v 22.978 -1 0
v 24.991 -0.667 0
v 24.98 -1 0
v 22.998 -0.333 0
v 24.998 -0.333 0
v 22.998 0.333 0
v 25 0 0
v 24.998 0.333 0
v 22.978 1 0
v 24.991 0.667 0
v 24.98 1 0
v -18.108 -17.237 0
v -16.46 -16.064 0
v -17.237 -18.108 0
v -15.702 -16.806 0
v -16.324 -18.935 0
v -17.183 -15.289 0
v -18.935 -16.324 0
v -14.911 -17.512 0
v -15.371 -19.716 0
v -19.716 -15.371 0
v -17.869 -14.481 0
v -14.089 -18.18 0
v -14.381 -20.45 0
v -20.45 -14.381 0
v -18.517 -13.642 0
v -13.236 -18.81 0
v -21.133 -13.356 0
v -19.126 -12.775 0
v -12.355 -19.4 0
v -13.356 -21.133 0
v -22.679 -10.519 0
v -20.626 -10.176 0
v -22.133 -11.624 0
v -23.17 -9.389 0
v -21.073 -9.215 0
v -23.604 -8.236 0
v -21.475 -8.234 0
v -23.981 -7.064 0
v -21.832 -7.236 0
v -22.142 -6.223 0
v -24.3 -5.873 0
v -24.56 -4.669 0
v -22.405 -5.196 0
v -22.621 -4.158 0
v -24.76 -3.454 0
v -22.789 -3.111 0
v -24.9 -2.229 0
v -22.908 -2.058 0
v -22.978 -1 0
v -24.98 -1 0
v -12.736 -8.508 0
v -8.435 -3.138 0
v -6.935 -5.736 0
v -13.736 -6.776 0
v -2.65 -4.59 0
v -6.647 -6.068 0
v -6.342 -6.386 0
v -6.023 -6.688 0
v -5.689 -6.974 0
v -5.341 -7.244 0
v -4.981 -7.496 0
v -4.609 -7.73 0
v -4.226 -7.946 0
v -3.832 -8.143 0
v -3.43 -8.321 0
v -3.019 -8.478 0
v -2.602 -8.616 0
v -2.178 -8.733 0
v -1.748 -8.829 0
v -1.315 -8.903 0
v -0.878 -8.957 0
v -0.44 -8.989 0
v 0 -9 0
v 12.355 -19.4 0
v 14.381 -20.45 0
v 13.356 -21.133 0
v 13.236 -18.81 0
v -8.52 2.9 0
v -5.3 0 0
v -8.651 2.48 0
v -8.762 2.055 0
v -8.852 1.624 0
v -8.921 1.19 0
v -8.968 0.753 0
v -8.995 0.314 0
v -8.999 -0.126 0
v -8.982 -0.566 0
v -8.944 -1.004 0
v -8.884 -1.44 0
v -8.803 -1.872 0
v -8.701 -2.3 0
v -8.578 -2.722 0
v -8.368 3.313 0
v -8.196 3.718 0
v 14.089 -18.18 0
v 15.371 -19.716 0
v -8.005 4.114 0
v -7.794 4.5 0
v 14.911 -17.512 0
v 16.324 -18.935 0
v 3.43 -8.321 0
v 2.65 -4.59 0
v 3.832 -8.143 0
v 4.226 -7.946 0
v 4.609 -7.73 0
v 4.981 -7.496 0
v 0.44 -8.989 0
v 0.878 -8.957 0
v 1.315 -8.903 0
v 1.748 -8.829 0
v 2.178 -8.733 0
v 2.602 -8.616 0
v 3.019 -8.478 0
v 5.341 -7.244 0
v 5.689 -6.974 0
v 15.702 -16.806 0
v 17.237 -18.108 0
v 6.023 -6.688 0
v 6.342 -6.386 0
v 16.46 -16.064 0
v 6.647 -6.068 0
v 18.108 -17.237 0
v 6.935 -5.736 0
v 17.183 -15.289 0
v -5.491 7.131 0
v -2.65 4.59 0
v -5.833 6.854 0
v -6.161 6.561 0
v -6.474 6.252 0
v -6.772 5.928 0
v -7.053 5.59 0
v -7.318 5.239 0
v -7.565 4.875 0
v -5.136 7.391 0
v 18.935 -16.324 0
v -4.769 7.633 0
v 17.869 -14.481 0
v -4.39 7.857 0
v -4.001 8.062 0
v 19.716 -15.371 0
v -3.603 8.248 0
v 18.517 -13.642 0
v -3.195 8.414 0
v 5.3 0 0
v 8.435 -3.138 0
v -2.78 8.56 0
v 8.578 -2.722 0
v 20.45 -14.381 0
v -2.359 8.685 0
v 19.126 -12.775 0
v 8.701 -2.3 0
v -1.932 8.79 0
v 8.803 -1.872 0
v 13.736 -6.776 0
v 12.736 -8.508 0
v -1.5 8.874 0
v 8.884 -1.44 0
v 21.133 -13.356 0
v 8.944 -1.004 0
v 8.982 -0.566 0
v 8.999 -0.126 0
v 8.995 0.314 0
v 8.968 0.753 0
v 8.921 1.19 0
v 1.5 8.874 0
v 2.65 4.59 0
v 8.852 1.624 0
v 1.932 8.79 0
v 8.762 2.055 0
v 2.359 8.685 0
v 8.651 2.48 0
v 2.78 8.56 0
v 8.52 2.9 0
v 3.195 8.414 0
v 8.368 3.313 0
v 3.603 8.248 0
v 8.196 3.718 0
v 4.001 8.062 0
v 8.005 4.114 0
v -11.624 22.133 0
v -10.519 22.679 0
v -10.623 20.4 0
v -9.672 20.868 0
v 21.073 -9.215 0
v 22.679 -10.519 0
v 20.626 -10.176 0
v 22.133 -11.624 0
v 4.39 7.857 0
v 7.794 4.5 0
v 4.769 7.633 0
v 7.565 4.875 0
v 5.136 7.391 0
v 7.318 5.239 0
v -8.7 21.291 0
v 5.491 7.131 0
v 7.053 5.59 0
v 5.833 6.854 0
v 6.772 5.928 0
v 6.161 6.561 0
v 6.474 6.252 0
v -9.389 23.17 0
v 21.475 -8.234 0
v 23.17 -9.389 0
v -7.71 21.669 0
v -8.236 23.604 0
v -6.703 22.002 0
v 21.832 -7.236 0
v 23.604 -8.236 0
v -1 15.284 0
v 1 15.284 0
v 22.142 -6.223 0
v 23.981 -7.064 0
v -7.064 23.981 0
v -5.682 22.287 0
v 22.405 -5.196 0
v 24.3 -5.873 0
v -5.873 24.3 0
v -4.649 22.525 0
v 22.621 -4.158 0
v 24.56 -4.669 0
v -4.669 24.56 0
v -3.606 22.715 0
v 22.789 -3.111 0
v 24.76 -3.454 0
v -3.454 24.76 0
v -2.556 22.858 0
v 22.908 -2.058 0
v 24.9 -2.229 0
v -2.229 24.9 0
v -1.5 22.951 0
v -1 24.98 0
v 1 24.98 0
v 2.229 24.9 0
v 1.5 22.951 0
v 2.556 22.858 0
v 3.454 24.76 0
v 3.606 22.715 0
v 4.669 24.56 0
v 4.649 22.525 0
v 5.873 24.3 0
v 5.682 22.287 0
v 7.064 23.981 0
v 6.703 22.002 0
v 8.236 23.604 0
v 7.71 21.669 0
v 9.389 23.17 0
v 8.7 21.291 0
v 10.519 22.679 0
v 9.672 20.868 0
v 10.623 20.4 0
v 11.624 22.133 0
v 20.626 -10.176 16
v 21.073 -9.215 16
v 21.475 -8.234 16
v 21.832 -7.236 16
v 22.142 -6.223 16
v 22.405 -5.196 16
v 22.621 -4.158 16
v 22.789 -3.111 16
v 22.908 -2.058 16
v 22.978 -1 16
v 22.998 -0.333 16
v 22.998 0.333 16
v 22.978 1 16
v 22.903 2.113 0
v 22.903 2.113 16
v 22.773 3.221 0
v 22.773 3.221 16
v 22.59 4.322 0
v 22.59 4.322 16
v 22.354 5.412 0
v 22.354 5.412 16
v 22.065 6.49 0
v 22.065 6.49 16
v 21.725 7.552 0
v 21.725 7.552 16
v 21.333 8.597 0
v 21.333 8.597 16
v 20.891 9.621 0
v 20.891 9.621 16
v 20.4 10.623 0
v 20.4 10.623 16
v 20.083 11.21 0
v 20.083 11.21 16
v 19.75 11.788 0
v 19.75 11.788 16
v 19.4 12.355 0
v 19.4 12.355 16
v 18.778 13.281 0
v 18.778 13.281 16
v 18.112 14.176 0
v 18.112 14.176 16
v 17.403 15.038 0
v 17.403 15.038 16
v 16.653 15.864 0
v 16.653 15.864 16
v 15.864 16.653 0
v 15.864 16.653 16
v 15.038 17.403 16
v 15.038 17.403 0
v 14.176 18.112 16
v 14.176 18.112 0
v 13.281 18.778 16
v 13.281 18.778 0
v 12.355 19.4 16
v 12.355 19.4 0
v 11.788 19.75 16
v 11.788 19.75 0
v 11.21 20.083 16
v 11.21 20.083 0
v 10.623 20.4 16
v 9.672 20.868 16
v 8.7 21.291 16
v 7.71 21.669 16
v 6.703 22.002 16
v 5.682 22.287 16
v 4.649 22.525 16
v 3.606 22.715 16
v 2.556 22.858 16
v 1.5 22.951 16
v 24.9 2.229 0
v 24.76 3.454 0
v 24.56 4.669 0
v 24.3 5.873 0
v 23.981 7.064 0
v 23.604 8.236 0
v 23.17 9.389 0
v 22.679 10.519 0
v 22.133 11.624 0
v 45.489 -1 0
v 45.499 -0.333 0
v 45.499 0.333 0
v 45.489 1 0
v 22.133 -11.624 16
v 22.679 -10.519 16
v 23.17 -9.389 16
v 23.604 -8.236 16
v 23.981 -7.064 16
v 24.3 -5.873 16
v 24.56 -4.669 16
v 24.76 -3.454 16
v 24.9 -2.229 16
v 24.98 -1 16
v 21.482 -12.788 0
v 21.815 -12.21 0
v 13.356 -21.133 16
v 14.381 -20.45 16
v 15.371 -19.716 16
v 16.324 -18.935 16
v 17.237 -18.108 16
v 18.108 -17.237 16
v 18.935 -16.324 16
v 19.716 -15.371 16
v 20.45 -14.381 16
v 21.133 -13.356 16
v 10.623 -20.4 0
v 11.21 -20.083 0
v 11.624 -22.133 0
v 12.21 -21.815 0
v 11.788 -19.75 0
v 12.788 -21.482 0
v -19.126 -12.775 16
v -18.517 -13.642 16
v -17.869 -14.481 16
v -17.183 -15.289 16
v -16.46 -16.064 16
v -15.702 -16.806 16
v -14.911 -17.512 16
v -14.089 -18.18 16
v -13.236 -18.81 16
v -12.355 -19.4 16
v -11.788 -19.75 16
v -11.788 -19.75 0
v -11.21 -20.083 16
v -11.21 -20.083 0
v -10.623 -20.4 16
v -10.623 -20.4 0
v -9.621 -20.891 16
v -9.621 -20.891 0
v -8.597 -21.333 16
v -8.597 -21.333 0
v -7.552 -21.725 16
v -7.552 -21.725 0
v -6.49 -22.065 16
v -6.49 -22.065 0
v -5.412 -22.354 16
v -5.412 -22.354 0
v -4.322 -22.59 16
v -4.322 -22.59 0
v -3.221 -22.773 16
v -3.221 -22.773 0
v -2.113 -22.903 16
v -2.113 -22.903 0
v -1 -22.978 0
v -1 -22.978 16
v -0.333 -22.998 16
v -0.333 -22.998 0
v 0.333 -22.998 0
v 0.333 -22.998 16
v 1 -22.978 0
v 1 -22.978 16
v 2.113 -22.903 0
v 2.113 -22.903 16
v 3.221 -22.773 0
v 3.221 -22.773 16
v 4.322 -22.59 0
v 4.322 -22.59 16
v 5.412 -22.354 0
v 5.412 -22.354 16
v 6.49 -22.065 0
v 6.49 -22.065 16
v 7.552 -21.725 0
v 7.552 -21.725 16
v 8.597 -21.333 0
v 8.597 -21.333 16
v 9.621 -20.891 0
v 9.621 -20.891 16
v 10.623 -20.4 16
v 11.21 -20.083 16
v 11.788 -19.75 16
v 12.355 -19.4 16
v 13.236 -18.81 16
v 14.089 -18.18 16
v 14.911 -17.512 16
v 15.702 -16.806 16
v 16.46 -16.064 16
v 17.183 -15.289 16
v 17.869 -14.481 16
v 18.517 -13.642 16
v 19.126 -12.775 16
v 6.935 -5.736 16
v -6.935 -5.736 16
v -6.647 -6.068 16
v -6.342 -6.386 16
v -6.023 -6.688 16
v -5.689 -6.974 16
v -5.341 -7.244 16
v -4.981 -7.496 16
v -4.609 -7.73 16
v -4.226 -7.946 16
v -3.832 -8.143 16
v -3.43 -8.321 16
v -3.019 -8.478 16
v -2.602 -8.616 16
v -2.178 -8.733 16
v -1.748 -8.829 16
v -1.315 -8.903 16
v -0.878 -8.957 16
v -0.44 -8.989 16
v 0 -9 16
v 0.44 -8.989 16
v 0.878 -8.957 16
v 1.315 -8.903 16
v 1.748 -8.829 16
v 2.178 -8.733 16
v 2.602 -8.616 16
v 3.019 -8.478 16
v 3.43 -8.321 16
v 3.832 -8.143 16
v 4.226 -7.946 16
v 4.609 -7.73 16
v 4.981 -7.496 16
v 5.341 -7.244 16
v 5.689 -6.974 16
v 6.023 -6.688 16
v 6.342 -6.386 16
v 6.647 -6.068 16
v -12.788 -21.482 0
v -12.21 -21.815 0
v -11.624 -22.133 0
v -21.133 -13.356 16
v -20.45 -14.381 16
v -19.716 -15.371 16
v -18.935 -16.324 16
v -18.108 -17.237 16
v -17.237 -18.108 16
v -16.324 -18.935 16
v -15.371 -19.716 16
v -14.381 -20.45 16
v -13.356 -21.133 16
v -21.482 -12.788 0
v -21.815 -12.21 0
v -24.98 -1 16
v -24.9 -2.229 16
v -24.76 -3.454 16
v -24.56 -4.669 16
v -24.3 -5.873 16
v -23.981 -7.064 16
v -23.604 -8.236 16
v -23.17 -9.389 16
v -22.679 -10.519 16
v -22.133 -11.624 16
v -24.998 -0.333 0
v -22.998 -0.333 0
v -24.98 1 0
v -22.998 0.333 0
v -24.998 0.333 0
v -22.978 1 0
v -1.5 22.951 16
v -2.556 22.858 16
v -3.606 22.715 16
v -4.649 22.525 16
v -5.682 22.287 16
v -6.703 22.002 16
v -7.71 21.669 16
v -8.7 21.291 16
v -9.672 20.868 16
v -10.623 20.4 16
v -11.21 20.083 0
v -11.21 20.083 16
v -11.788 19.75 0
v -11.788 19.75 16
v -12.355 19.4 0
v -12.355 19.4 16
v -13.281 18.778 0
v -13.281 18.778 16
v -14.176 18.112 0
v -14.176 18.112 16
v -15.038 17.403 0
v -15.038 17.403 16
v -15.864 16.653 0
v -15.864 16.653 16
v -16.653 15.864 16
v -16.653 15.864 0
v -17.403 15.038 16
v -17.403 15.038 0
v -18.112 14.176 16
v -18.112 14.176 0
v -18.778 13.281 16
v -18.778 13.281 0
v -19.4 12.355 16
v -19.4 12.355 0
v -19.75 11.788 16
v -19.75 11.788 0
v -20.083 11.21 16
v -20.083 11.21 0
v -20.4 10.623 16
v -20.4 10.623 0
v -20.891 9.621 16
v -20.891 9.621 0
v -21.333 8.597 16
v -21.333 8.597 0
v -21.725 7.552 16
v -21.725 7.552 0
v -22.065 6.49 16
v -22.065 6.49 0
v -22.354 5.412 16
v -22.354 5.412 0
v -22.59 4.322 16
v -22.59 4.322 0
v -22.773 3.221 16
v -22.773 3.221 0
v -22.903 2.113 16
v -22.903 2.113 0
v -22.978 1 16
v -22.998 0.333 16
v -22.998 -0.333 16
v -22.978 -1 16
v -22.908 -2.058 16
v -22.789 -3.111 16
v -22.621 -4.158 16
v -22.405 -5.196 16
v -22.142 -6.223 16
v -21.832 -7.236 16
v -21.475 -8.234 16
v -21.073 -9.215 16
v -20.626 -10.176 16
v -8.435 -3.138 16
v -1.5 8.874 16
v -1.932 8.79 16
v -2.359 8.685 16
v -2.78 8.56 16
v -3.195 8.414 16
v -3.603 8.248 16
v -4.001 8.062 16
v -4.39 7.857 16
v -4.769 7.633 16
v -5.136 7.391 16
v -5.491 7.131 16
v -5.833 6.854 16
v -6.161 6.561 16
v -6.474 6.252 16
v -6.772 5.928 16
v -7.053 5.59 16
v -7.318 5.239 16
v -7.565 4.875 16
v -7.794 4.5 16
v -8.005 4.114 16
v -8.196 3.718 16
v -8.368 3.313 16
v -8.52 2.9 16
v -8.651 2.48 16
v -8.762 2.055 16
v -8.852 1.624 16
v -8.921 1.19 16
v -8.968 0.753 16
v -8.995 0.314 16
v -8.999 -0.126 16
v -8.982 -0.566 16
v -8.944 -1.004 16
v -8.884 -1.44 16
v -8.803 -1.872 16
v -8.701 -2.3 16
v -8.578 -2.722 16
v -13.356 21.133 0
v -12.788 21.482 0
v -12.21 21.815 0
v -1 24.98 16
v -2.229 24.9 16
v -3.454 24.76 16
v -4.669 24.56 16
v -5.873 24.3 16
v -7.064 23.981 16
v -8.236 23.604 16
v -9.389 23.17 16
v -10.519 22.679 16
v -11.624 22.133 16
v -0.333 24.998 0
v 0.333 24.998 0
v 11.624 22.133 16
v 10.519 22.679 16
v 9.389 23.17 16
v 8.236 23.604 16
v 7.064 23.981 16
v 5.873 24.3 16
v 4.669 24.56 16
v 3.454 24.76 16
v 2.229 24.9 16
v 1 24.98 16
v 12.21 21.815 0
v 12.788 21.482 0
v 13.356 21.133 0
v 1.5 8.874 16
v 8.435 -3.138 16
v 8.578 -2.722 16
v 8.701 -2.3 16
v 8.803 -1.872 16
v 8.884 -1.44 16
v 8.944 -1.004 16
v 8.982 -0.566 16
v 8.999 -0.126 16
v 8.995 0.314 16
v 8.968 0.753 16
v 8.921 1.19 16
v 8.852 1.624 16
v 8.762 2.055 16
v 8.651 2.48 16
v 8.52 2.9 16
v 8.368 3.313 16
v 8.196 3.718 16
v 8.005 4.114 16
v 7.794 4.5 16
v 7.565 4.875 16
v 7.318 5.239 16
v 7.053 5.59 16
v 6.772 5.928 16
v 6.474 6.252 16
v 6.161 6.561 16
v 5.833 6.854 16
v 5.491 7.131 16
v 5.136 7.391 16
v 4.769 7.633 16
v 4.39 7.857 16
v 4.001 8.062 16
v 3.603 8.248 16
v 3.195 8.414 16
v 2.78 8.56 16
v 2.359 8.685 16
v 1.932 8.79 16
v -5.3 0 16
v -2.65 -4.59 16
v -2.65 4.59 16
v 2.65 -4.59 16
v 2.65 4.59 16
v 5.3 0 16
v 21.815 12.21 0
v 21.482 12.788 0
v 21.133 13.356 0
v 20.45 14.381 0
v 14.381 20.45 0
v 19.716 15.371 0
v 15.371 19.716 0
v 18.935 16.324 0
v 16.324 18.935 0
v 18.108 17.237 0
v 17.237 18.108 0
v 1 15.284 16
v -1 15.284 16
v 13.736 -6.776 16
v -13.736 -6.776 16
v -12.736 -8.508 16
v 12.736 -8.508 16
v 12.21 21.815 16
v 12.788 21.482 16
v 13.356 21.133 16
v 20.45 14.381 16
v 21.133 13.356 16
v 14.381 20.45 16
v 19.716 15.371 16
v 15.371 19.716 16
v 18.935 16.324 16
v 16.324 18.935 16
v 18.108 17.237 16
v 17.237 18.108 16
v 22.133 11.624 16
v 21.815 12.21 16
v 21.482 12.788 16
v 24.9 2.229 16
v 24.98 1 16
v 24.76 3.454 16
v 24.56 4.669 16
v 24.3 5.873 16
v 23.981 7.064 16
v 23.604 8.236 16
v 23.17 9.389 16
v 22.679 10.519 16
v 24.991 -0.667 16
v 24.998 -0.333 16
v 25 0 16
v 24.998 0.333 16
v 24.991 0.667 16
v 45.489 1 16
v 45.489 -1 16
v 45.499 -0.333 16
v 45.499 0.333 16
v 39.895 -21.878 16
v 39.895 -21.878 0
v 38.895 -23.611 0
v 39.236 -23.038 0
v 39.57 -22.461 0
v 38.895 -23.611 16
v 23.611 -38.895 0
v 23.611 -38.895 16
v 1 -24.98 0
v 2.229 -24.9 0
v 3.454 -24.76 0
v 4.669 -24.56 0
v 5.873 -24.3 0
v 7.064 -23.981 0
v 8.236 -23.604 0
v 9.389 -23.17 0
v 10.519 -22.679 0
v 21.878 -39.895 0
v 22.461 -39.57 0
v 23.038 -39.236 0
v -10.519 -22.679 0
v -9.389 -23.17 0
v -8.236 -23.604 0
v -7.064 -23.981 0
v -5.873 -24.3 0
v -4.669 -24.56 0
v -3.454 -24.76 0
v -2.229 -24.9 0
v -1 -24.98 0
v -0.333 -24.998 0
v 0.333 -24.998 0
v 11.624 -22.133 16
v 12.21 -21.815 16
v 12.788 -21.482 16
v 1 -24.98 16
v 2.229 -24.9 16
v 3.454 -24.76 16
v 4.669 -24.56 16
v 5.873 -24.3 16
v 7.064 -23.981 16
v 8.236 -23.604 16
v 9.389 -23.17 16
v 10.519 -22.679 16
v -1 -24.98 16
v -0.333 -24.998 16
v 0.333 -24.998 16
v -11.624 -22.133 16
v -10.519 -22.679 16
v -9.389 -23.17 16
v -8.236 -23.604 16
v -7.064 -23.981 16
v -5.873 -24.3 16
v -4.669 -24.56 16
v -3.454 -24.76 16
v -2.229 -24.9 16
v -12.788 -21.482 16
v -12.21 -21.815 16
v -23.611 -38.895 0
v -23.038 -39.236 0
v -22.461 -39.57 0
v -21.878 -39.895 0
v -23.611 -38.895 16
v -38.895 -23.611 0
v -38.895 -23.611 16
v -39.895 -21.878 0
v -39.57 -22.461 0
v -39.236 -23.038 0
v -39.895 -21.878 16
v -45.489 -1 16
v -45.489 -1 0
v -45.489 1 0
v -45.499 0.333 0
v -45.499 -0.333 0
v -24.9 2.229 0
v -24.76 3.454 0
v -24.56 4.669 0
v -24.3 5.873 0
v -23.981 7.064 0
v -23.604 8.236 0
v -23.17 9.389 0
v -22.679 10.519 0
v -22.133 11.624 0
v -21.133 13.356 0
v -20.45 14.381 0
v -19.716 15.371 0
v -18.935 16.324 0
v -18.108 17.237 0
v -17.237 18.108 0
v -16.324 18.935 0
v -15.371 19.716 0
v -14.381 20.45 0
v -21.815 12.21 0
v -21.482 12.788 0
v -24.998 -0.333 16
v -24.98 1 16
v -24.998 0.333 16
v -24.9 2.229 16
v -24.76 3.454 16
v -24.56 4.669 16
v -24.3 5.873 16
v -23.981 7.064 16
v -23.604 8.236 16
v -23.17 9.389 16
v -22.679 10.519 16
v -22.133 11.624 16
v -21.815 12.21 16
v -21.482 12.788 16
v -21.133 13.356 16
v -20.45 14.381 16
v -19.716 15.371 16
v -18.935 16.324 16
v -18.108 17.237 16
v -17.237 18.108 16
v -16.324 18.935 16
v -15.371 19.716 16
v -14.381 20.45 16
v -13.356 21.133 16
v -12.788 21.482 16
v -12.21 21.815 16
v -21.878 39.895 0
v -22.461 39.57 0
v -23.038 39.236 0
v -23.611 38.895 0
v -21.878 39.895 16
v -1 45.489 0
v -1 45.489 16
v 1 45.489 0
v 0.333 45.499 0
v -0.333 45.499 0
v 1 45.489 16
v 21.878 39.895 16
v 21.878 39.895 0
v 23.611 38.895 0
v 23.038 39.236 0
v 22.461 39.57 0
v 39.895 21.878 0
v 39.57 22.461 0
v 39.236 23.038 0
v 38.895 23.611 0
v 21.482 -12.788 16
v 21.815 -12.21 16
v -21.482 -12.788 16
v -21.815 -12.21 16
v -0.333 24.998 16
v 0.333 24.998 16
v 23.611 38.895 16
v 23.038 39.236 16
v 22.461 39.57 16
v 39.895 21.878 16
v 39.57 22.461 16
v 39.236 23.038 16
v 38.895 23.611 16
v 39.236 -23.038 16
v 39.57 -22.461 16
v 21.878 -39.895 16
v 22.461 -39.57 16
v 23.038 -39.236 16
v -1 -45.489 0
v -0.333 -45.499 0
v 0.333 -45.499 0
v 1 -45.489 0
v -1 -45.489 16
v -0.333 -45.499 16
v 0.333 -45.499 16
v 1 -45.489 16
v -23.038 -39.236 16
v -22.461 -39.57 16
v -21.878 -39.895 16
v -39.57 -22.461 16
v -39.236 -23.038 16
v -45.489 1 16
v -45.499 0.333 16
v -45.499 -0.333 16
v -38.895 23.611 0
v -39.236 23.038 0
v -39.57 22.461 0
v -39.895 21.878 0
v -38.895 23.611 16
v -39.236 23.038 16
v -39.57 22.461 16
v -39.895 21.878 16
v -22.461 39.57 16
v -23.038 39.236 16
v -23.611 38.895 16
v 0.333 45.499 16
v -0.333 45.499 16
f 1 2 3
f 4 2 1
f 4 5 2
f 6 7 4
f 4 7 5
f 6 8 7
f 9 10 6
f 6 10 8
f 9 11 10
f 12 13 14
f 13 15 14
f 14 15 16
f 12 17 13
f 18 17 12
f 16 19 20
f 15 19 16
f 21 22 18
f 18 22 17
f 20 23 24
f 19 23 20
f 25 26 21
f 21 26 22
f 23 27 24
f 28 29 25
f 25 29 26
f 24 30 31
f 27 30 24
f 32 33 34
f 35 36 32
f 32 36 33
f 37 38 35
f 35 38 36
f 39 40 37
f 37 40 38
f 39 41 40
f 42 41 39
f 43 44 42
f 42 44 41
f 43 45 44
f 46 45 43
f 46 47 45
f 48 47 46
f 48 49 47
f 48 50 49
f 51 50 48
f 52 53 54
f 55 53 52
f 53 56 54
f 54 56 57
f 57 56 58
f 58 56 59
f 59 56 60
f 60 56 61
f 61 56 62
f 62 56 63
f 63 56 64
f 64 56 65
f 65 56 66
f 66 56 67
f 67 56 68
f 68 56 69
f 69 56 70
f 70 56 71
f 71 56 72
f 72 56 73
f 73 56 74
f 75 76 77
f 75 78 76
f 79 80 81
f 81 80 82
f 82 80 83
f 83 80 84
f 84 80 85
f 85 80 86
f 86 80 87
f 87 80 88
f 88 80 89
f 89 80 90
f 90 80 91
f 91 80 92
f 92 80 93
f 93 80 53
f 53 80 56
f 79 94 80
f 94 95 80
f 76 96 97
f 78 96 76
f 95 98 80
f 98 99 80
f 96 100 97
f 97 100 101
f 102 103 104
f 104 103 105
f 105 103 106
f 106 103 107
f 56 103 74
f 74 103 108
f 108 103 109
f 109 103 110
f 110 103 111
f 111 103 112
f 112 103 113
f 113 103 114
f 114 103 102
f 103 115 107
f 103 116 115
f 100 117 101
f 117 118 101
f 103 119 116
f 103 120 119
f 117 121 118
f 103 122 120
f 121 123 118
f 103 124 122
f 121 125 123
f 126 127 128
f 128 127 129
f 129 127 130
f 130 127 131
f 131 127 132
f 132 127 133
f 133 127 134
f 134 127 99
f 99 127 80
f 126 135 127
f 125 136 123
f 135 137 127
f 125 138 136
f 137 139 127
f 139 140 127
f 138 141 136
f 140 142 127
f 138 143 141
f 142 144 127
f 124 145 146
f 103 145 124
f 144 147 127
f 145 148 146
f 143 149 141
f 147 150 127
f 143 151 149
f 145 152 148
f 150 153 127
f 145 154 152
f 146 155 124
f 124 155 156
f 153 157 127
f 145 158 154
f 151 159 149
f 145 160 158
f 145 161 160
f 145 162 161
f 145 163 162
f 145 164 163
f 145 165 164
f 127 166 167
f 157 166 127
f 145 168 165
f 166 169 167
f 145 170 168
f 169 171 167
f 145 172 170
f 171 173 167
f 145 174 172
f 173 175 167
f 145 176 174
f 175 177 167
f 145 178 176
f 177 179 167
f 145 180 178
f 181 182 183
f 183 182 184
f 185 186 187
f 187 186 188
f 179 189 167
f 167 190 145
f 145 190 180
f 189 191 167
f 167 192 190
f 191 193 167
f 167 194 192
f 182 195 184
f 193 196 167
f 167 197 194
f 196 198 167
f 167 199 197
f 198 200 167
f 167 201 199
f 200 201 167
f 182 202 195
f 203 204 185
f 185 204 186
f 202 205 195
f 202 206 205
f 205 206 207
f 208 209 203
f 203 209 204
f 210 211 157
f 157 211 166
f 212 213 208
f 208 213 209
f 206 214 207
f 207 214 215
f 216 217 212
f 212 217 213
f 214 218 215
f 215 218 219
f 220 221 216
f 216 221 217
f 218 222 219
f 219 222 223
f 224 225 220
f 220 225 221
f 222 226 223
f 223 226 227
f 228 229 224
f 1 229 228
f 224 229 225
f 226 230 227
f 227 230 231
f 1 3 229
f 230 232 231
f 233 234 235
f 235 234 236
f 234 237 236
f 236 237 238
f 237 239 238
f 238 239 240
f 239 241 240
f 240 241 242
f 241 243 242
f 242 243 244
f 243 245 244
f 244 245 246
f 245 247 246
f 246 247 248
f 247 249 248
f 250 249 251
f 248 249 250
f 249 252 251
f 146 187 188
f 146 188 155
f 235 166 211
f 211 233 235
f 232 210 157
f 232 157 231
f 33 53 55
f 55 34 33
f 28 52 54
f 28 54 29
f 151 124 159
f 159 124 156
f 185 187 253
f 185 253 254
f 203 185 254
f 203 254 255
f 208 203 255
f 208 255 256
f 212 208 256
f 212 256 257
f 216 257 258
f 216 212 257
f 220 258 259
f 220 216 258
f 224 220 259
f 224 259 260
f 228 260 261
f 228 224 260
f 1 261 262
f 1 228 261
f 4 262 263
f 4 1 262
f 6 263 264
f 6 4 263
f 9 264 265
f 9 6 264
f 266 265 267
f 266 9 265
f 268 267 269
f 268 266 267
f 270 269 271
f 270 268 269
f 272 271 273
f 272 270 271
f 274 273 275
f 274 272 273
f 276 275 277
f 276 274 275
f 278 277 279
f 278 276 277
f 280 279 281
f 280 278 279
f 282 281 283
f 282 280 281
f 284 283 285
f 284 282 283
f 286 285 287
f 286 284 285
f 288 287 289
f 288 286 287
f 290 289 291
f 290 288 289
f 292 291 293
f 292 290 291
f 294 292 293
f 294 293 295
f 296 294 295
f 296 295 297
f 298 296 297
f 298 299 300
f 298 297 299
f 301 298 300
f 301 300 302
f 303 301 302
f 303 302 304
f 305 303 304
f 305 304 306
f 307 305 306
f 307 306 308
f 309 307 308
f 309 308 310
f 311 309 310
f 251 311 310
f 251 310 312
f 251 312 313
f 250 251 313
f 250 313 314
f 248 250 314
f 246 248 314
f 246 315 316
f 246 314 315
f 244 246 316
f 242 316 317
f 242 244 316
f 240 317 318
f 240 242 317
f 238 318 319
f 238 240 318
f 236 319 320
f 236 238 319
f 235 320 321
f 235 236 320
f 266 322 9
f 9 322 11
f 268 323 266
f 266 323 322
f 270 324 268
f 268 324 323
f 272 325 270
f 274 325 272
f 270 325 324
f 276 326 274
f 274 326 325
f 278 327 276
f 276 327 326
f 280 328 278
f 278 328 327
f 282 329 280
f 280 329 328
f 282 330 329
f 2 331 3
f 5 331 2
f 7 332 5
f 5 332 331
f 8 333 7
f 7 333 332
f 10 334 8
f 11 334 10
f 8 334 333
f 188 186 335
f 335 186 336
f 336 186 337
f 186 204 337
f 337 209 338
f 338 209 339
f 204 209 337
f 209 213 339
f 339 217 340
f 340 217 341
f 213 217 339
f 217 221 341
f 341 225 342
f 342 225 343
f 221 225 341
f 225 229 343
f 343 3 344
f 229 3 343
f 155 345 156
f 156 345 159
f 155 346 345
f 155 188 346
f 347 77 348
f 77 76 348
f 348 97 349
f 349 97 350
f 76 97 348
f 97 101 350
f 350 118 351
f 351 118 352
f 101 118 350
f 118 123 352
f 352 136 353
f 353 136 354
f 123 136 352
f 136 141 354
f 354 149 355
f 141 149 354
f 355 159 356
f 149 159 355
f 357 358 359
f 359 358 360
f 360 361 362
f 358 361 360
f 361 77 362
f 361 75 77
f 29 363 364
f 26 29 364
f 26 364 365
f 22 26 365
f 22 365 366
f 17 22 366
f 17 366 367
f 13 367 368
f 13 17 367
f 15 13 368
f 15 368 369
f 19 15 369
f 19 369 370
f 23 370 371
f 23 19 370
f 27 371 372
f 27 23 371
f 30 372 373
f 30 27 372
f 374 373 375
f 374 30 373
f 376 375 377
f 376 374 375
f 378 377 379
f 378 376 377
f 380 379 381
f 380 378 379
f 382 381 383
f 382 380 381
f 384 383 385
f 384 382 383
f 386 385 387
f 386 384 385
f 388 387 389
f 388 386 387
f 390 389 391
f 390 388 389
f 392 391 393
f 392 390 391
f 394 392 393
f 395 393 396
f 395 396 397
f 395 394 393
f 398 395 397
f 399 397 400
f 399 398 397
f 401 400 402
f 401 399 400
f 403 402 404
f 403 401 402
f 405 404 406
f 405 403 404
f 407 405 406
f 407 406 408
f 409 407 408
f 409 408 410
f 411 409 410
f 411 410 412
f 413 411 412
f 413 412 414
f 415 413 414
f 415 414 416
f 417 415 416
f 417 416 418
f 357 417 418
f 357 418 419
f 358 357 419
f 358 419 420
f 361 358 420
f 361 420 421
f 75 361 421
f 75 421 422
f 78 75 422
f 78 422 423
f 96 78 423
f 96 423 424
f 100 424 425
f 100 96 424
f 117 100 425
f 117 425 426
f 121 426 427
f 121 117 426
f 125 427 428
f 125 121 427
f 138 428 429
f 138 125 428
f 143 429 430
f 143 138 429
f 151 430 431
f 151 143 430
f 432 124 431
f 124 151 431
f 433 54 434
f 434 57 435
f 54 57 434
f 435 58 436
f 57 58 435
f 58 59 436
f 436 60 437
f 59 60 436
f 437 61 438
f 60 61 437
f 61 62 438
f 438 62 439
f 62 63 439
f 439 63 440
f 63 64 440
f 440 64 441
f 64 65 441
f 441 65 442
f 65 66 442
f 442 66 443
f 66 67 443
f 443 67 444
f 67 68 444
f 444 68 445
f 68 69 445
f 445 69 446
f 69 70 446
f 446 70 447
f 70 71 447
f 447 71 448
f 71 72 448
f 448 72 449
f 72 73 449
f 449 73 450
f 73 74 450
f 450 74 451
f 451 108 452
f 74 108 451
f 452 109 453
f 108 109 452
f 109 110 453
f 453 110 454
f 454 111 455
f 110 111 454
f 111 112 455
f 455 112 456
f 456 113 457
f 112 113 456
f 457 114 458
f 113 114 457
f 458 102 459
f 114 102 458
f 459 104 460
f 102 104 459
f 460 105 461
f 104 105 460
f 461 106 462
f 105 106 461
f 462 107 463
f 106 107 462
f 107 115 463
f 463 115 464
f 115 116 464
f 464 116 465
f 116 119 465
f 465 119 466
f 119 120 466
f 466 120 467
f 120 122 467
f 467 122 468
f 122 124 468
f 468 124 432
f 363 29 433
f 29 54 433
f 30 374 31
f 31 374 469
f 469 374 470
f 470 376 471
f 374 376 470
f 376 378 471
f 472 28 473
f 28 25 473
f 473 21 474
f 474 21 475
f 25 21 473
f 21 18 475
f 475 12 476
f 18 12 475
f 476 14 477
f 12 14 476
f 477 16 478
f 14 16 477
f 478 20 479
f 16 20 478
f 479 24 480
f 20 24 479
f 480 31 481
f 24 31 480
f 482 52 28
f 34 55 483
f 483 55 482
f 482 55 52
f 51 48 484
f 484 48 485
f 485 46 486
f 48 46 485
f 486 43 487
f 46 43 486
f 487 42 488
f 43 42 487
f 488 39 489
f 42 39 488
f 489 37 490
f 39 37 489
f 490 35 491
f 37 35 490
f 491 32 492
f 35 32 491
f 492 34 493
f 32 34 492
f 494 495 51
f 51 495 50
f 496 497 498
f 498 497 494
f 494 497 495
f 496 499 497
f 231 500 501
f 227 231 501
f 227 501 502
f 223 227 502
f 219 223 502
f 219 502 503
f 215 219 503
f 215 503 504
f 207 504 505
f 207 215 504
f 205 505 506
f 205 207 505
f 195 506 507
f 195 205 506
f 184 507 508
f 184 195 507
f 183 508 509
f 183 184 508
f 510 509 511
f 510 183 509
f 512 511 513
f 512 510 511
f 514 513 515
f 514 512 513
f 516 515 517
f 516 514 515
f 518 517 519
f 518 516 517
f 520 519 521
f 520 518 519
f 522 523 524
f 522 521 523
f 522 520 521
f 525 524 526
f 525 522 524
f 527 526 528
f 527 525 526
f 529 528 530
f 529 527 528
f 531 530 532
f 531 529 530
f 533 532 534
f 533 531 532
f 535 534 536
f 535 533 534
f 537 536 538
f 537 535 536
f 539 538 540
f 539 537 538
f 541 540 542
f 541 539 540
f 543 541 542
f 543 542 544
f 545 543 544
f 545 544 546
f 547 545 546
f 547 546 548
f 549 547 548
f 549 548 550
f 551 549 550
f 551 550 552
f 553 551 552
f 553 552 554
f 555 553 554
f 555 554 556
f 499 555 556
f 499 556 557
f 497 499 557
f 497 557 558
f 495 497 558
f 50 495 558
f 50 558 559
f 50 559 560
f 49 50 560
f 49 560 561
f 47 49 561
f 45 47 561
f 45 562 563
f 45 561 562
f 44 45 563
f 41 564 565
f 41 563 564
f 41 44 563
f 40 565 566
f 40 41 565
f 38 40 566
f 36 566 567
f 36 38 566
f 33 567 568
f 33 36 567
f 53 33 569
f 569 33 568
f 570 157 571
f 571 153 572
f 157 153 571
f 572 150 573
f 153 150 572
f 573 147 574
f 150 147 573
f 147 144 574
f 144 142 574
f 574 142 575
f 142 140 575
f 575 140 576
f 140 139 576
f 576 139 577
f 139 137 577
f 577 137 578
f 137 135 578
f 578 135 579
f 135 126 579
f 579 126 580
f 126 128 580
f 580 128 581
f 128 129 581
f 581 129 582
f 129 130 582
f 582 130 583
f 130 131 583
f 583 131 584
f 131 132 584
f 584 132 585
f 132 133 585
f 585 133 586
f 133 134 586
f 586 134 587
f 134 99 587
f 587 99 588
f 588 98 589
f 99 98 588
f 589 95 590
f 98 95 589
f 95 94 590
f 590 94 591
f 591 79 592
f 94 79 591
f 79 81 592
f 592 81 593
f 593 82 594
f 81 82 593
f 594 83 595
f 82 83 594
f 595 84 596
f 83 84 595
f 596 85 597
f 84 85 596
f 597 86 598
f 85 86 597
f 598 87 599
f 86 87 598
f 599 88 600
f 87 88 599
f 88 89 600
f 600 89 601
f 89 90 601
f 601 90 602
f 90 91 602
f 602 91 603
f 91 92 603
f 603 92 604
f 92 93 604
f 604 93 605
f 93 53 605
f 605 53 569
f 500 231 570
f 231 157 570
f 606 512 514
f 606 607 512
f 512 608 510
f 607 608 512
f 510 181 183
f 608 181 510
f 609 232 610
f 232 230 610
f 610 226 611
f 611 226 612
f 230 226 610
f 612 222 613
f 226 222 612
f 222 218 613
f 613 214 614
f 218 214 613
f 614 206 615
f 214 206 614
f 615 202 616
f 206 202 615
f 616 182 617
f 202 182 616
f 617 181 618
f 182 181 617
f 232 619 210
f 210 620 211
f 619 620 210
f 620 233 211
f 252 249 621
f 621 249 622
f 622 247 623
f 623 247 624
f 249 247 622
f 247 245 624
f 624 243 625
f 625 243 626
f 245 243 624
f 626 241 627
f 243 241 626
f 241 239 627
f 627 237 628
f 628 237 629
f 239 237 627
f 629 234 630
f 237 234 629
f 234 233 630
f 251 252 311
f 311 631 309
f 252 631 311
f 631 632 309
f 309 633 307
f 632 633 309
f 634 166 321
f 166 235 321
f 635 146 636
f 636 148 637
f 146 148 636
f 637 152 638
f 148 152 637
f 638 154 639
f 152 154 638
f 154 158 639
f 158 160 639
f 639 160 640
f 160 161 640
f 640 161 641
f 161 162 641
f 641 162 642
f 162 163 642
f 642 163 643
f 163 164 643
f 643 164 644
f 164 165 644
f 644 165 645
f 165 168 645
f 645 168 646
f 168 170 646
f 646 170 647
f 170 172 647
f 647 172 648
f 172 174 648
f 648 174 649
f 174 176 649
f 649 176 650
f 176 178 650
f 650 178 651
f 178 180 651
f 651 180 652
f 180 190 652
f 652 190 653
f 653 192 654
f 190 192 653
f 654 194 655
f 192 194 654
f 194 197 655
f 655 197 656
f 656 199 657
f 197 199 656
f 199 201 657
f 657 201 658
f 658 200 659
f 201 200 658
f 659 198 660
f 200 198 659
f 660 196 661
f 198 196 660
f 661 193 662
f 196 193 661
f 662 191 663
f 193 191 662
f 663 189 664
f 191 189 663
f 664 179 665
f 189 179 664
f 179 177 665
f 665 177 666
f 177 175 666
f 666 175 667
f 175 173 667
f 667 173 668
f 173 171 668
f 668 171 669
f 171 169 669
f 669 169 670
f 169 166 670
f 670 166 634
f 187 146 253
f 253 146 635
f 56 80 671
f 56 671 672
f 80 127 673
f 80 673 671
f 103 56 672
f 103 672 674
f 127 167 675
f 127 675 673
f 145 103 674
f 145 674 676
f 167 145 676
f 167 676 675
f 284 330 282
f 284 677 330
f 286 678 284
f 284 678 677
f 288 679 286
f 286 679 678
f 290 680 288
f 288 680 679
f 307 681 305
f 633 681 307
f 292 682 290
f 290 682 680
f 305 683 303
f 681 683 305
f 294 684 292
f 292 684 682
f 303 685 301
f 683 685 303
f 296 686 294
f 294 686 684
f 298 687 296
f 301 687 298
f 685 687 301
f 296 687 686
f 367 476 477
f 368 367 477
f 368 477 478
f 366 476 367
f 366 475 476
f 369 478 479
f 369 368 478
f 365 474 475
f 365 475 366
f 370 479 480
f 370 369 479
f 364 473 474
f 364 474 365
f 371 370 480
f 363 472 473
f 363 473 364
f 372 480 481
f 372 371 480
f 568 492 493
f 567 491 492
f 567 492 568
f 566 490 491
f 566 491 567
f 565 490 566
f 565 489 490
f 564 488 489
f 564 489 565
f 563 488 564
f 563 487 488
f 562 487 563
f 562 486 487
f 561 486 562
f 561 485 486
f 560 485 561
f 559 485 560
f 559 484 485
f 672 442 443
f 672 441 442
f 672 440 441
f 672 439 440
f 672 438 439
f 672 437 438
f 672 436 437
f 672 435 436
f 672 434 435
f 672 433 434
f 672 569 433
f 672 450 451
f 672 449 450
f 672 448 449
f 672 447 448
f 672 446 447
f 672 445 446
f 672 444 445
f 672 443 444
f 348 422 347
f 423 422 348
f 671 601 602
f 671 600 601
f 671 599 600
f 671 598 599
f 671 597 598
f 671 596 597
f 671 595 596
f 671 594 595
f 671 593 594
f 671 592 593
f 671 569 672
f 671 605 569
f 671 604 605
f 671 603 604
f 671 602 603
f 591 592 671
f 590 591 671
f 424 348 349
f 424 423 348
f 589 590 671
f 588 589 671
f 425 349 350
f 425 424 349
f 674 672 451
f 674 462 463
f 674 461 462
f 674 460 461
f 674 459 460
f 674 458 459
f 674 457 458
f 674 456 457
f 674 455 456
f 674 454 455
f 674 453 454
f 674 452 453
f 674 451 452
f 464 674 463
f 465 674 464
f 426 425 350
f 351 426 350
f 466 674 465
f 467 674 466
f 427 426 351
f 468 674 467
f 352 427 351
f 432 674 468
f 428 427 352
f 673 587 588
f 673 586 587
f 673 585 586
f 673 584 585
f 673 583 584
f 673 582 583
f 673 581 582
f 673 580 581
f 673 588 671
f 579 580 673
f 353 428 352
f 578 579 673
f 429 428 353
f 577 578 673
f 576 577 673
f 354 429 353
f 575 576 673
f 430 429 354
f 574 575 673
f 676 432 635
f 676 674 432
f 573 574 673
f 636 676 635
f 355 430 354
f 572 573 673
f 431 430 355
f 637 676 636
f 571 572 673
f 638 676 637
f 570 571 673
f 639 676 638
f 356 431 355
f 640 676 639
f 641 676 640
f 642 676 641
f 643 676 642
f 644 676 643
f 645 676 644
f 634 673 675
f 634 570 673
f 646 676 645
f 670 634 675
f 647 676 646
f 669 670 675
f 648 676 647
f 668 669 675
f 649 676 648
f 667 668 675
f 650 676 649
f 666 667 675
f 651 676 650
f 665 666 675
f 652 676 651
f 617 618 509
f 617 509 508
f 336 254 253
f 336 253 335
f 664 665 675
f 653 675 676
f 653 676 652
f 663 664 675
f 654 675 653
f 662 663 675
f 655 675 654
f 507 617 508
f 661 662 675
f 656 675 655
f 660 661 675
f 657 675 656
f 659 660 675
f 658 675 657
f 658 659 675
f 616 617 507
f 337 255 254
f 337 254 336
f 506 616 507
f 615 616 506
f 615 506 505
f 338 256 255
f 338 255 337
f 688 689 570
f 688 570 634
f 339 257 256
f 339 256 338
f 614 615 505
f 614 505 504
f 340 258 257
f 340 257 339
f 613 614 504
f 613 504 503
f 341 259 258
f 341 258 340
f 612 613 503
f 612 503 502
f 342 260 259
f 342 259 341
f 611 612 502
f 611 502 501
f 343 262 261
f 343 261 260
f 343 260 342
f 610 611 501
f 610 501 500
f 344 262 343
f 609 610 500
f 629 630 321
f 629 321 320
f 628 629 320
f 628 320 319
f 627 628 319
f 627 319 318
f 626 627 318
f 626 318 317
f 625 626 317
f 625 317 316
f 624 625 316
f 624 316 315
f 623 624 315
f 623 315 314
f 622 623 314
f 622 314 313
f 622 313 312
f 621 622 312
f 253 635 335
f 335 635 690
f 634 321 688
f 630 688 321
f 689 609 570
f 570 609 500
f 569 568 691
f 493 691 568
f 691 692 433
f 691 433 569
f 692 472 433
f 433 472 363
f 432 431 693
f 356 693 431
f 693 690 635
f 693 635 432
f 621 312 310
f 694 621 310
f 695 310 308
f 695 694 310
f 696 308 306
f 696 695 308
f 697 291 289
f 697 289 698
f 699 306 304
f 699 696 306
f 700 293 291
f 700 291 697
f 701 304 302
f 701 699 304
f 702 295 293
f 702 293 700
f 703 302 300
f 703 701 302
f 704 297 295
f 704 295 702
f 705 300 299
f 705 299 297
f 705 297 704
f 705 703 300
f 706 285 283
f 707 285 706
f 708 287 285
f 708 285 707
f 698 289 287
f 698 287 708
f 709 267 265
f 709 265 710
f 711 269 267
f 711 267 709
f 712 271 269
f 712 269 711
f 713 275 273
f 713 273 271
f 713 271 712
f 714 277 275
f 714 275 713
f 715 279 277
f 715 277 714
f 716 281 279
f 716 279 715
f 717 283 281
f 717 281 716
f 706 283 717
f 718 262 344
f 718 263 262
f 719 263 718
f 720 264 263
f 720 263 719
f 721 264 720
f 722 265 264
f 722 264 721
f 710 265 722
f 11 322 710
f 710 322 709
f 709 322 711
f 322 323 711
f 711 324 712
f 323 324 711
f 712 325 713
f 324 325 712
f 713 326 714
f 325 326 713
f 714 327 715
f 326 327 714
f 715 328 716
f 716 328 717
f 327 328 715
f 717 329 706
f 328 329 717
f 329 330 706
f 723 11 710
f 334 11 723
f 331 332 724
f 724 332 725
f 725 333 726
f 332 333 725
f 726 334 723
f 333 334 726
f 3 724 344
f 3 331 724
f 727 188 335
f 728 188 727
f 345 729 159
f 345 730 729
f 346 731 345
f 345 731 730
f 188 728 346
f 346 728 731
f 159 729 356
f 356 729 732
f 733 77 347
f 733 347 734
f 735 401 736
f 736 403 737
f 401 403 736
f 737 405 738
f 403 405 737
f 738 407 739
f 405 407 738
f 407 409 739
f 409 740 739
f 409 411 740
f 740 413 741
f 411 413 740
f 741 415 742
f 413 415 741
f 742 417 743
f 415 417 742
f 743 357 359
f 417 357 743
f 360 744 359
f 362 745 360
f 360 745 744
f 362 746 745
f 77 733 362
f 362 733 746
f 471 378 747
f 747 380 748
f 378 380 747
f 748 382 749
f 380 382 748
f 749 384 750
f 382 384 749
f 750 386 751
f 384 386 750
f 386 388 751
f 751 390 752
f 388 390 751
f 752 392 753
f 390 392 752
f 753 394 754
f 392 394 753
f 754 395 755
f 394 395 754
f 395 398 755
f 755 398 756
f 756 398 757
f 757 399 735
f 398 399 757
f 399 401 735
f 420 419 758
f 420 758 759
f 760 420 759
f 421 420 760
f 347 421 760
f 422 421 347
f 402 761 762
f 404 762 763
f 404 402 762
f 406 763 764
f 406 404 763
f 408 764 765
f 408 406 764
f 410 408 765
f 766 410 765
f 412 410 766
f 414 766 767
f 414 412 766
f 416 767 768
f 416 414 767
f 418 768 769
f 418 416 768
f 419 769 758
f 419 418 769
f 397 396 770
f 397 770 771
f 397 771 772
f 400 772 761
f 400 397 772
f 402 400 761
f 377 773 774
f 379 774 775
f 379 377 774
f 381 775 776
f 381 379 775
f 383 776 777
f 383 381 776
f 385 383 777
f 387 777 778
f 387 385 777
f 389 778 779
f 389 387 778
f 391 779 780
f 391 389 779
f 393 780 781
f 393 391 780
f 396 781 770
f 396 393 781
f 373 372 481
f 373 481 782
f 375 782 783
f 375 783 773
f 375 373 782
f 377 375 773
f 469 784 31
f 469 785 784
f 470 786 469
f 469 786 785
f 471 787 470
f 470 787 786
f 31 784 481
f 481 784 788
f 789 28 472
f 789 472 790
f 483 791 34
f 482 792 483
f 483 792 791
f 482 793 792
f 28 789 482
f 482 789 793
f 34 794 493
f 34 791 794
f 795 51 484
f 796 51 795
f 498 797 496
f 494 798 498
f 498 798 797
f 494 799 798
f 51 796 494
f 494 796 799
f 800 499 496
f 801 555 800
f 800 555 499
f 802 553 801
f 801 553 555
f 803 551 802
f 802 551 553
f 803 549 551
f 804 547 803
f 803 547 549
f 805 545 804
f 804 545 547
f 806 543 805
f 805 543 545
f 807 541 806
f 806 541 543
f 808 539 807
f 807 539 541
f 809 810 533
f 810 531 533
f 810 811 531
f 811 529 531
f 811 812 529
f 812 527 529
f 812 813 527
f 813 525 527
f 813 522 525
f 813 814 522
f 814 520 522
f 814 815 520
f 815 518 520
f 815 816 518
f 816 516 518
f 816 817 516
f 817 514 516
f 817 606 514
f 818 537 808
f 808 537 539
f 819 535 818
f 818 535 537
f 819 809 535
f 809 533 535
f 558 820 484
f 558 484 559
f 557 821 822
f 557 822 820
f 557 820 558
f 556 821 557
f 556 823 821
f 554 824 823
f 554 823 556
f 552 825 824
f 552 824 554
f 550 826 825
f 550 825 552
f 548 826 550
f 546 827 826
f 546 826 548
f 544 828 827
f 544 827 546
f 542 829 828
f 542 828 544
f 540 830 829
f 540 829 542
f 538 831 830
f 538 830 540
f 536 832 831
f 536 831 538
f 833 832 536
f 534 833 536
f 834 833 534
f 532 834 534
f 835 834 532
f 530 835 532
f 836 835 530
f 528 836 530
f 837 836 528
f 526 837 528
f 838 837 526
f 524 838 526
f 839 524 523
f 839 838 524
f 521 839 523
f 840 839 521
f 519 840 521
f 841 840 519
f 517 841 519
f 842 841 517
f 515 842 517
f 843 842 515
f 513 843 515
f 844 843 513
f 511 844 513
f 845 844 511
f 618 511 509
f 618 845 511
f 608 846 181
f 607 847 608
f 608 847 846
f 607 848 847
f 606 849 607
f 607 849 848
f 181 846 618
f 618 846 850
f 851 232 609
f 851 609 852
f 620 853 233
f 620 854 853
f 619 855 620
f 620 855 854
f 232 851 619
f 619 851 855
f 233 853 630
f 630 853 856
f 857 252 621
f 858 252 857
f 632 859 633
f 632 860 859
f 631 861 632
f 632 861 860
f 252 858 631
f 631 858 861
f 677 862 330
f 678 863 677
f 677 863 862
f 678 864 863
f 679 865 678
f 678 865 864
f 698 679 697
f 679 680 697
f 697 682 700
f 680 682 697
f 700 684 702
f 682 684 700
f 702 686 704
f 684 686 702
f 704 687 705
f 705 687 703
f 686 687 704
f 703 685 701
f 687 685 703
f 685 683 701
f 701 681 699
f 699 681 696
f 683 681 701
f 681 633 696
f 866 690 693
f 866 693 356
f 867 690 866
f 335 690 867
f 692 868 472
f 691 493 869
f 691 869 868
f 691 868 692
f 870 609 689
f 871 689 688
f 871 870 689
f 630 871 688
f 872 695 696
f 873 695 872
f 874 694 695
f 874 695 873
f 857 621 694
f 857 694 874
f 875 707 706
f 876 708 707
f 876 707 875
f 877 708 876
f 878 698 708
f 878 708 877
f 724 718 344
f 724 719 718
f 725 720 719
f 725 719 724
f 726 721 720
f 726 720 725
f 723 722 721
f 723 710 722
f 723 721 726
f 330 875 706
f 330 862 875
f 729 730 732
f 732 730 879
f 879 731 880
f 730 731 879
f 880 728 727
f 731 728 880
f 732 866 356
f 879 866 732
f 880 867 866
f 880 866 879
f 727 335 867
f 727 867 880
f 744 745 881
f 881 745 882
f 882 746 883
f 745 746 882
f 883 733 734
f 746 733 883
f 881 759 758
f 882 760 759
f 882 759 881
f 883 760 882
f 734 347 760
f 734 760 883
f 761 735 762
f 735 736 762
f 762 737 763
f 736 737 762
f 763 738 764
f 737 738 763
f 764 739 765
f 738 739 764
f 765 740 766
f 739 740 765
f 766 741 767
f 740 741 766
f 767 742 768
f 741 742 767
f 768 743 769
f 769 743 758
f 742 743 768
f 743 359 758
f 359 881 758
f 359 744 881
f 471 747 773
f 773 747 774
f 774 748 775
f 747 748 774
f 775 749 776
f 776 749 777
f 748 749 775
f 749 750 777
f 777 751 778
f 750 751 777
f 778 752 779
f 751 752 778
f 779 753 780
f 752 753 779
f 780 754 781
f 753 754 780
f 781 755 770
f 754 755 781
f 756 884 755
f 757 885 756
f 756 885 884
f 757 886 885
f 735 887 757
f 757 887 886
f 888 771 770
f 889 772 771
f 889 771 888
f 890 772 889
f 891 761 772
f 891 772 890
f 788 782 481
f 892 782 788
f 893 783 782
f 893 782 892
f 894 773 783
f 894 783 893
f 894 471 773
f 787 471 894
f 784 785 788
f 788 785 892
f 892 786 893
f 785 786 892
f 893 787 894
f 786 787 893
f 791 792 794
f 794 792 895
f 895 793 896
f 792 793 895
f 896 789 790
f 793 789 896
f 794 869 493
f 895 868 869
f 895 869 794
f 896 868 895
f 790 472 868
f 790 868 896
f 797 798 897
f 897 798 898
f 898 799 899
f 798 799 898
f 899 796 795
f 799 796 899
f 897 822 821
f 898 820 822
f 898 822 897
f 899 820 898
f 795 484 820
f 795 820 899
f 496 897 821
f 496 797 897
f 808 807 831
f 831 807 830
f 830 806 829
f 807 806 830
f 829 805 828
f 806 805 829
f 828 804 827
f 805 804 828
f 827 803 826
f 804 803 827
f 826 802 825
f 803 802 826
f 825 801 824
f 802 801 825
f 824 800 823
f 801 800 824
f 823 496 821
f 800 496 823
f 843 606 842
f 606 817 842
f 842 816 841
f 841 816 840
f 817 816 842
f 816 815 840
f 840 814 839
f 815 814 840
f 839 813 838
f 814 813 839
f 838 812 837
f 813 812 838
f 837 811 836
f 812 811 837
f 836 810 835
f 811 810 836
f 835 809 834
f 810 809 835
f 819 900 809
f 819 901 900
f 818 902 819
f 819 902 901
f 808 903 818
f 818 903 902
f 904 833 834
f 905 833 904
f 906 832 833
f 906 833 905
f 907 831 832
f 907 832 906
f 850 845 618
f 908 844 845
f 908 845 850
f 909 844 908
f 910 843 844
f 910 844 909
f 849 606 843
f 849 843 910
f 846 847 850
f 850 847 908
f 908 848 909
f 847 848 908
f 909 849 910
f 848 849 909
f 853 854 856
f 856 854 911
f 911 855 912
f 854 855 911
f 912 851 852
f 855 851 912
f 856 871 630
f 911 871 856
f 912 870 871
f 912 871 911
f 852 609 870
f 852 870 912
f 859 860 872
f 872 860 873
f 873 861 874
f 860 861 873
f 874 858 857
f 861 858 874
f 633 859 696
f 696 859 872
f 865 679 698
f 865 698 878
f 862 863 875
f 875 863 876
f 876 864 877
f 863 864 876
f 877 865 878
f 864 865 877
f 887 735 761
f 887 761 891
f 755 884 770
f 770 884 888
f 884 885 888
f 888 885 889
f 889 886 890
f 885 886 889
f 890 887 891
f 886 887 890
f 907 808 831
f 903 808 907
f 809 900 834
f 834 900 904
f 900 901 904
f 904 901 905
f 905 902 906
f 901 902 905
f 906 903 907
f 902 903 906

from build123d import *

# Parameters (mm, degrees)
SKETCH_R              = 25
PAD_DEPTH             = 16
PAD001_DEPTH          = 16
POLARPATTERN_COUNT    = 12
POCKET_DEPTH          = 16.001
POCKET001_DEPTH       = 275.369464
POLARPATTERN001_COUNT = 3


with BuildPart() as part:
    # Sketch → Pad (new body)
    with BuildSketch(Plane.XY):
        Circle(SKETCH_R)
    extrude(amount=PAD_DEPTH)

    # Sketch002 → Pad001 (join)
    with BuildSketch(Plane.XY):
        with BuildLine():
            Line((15.28351, 1), (45.48901, 1))
            ThreePointArc((45.48901, -1), (45.5, 0), (45.48901, 1))
            Line((15.28351, -1), (45.48901, -1))
            Line((15.28351, 1), (15.28351, -1))
        make_face()
    pad001 = extrude(amount=PAD001_DEPTH)

    # PolarPattern: Pad001 ×12 about axis
    polarpattern_axis = Axis((0, 0, 0), (0, 0, 1))
    for i in range(1, POLARPATTERN_COUNT):
        add(pad001.rotate(polarpattern_axis, i * 360 / POLARPATTERN_COUNT))

    # Sketch003 → Pocket (cut, through all)
    with BuildSketch(Plane.XY):
        Polygon((-5.3, 0), (-2.65, -4.589935), (2.65, -4.589935), (5.3, 0), (2.65, 4.589935), (-2.65, 4.589935), align=None)
    extrude(amount=POCKET_DEPTH, mode=Mode.SUBTRACT)

    # Sketch004 → Pocket001 (cut, through all)
    with BuildSketch(Plane.XY):
        with BuildLine():
            Line((-1.5, 22.951035), (-1.5, 8.87412))
            ThreePointArc((-1.5, 8.87412), (-7.794229, 4.5), (-8.435213, -3.138022))
            Line((-8.435213, -3.138022), (-20.626179, -10.176479))
            ThreePointArc((-1.5, 22.951035), (-19.918584, 11.5), (-20.626179, -10.176479))
        make_face()
    pocket001 = extrude(amount=POCKET001_DEPTH, mode=Mode.SUBTRACT)

    # PolarPattern001: Pocket001 ×3 about axis
    polarpattern001_axis = Axis((0, 0, 0), (0, 0, 1))
    for i in range(1, POLARPATTERN001_COUNT):
        add(pocket001.rotate(polarpattern001_axis, i * 360 / POLARPATTERN001_COUNT), mode=Mode.SUBTRACT)


solid = part.part
